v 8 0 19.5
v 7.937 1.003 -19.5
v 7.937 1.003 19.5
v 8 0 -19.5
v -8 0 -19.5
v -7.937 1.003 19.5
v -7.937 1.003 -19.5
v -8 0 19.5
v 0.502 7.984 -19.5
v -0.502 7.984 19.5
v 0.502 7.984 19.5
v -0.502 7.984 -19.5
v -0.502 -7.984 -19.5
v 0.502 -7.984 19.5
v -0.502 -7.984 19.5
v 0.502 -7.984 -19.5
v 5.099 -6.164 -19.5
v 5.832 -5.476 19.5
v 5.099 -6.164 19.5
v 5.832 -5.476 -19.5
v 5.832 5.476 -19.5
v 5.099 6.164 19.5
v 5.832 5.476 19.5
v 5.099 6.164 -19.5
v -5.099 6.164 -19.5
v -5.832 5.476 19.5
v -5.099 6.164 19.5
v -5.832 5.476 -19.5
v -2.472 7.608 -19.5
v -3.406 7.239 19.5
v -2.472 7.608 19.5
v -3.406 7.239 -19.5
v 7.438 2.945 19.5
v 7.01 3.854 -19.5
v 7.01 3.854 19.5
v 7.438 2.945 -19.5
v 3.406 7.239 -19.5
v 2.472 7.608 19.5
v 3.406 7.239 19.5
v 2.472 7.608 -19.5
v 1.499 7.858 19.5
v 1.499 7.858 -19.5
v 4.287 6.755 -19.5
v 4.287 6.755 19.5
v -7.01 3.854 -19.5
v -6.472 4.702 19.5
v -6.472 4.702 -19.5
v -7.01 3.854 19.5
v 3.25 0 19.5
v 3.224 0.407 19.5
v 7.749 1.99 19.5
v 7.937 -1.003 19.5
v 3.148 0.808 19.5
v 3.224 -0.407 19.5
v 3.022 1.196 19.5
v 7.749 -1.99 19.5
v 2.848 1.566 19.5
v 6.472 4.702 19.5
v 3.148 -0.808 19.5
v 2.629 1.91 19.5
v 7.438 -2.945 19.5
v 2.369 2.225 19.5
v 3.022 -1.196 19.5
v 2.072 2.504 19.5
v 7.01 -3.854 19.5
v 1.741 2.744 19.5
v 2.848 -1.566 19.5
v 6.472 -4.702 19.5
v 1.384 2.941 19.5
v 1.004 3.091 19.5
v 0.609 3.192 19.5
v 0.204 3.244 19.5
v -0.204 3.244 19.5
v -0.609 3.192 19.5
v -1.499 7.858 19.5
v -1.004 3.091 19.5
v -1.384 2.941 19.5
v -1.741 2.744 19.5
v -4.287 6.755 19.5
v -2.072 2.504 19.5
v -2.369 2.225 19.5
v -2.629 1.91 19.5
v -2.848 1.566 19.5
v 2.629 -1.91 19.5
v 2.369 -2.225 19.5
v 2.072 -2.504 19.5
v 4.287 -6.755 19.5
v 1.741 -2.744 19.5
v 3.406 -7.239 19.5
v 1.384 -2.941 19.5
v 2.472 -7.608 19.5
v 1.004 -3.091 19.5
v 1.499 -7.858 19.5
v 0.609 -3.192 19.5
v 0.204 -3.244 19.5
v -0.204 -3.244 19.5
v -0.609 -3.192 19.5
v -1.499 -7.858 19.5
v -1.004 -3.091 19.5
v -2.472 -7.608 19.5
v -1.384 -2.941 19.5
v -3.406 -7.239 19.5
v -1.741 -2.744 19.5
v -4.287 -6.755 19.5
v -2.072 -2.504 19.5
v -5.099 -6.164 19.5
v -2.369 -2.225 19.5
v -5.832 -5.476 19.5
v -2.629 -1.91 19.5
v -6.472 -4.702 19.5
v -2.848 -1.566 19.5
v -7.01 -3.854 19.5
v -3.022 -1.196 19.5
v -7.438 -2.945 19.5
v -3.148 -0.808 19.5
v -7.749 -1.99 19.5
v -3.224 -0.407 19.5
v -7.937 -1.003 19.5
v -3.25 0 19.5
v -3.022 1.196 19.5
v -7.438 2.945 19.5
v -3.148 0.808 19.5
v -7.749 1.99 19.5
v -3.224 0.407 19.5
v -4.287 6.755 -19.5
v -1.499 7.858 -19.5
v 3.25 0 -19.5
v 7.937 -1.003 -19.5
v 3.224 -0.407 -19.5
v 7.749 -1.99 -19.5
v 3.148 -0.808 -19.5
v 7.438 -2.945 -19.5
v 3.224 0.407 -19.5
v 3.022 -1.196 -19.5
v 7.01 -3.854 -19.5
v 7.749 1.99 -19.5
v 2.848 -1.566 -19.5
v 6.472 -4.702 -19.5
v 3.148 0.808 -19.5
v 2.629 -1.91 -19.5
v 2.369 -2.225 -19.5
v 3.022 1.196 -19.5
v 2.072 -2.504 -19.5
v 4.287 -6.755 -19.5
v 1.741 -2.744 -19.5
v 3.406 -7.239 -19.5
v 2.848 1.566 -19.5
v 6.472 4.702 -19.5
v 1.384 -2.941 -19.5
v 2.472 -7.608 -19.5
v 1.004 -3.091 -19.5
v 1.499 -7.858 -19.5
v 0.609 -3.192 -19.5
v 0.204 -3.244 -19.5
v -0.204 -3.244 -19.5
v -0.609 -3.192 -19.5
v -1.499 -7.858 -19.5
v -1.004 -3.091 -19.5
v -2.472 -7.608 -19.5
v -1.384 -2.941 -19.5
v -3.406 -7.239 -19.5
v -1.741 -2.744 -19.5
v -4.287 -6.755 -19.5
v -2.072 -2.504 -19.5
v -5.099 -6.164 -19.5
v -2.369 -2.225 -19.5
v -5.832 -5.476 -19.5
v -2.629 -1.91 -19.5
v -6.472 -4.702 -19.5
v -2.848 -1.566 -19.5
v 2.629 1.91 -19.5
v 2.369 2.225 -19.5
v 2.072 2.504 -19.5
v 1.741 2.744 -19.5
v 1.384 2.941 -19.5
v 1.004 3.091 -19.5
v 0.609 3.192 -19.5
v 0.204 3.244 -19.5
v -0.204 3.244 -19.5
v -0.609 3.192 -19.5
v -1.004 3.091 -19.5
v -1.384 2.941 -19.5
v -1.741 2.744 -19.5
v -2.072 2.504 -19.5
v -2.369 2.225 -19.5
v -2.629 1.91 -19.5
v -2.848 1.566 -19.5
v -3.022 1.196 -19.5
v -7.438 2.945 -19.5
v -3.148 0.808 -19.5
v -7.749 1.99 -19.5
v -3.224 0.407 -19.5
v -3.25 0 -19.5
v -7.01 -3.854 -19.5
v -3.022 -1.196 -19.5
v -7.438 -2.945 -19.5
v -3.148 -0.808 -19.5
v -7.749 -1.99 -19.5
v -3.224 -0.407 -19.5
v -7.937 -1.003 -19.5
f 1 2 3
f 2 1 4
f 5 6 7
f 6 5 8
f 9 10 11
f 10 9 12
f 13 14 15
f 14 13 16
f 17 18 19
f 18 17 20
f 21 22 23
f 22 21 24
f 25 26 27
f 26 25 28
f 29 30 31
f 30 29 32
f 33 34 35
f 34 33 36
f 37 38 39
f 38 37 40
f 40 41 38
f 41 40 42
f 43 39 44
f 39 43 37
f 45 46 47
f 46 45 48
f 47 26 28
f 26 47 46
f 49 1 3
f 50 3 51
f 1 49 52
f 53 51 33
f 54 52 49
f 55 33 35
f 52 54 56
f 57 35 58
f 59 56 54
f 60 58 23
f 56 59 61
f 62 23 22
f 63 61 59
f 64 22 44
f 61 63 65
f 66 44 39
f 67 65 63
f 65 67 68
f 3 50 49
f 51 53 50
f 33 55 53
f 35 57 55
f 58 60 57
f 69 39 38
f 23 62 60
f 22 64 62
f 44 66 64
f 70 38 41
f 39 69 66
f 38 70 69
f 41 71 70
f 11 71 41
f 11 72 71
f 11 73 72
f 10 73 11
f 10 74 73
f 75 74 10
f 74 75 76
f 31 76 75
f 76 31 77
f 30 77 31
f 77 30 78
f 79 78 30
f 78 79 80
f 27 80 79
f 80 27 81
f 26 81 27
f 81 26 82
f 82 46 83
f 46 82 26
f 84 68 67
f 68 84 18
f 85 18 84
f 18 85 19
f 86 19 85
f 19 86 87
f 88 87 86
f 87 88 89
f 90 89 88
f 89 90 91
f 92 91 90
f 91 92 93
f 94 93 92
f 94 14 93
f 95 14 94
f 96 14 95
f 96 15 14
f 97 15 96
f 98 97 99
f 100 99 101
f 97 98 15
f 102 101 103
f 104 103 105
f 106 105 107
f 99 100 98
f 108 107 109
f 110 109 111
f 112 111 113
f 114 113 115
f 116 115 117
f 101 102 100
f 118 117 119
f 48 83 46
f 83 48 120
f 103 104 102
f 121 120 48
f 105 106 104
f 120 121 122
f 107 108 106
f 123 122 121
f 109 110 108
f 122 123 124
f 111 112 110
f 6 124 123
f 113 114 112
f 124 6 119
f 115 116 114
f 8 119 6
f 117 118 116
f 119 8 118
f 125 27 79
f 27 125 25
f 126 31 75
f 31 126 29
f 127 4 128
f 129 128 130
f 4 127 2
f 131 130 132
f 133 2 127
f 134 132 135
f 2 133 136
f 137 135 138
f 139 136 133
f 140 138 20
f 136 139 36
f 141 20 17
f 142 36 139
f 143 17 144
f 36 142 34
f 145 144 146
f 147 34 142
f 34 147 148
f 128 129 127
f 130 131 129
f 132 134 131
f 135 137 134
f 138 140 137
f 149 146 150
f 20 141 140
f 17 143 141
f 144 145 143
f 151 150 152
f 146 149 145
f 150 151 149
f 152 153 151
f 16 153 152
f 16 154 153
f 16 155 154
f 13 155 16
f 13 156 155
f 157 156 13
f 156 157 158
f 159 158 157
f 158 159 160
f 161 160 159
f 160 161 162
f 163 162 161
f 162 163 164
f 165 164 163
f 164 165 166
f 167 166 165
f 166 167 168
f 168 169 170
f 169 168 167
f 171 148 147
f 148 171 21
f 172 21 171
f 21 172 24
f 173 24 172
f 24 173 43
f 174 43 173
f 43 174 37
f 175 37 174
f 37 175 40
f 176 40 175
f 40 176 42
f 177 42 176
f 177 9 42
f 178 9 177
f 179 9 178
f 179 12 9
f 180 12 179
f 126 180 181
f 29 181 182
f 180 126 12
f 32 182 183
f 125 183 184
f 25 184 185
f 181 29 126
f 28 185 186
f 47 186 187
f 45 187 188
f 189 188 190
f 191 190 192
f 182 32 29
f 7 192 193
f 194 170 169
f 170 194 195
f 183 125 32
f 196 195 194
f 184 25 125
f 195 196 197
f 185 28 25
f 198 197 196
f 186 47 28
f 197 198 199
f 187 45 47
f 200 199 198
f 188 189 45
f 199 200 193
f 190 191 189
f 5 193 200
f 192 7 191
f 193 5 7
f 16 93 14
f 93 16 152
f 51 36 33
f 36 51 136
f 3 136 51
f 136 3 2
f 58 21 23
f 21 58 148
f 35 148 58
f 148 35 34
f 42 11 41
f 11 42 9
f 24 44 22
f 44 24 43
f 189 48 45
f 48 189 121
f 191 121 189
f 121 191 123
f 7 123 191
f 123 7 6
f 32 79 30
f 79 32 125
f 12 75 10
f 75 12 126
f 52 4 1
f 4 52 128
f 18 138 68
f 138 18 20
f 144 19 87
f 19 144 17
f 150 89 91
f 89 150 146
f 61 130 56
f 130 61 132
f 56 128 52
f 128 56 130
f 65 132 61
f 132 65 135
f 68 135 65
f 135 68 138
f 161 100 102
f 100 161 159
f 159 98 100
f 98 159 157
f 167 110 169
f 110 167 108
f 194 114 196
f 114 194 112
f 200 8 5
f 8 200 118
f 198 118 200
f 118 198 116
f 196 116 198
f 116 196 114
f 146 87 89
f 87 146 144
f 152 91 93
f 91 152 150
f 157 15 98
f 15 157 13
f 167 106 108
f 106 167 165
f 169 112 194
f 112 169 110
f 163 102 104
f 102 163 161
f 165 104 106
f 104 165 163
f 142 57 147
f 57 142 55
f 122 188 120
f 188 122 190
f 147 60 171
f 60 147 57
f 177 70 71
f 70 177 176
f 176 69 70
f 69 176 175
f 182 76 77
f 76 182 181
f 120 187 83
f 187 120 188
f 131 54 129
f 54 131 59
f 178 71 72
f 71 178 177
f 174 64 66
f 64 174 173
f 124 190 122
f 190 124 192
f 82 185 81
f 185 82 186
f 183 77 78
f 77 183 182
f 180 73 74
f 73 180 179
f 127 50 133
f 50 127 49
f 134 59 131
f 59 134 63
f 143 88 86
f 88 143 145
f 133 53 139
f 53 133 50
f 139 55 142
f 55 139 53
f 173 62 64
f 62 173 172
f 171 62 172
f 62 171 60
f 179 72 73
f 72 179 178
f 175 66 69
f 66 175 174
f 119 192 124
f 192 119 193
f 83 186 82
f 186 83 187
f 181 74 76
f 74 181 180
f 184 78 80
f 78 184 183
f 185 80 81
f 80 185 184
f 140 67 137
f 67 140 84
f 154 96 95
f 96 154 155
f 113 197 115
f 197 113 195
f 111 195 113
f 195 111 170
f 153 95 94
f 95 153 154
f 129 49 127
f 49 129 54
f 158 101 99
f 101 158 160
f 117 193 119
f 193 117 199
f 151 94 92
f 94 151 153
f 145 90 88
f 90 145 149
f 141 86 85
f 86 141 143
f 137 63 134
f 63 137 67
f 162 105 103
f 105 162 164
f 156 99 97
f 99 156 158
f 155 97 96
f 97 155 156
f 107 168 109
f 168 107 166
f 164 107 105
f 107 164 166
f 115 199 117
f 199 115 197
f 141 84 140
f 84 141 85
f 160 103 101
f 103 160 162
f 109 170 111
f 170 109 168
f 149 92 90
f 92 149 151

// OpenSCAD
$fn = 50;


difference() {
	union() {
		translate(v = [0, 0, -19.5000000000]) {
			cylinder(h = 39, r = 8.0000000000);
		}
	}
	union() {
		translate(v = [0, 0, -100.0000000000]) {
			cylinder(h = 200, r = 3.2500000000);
		}
	}
}
